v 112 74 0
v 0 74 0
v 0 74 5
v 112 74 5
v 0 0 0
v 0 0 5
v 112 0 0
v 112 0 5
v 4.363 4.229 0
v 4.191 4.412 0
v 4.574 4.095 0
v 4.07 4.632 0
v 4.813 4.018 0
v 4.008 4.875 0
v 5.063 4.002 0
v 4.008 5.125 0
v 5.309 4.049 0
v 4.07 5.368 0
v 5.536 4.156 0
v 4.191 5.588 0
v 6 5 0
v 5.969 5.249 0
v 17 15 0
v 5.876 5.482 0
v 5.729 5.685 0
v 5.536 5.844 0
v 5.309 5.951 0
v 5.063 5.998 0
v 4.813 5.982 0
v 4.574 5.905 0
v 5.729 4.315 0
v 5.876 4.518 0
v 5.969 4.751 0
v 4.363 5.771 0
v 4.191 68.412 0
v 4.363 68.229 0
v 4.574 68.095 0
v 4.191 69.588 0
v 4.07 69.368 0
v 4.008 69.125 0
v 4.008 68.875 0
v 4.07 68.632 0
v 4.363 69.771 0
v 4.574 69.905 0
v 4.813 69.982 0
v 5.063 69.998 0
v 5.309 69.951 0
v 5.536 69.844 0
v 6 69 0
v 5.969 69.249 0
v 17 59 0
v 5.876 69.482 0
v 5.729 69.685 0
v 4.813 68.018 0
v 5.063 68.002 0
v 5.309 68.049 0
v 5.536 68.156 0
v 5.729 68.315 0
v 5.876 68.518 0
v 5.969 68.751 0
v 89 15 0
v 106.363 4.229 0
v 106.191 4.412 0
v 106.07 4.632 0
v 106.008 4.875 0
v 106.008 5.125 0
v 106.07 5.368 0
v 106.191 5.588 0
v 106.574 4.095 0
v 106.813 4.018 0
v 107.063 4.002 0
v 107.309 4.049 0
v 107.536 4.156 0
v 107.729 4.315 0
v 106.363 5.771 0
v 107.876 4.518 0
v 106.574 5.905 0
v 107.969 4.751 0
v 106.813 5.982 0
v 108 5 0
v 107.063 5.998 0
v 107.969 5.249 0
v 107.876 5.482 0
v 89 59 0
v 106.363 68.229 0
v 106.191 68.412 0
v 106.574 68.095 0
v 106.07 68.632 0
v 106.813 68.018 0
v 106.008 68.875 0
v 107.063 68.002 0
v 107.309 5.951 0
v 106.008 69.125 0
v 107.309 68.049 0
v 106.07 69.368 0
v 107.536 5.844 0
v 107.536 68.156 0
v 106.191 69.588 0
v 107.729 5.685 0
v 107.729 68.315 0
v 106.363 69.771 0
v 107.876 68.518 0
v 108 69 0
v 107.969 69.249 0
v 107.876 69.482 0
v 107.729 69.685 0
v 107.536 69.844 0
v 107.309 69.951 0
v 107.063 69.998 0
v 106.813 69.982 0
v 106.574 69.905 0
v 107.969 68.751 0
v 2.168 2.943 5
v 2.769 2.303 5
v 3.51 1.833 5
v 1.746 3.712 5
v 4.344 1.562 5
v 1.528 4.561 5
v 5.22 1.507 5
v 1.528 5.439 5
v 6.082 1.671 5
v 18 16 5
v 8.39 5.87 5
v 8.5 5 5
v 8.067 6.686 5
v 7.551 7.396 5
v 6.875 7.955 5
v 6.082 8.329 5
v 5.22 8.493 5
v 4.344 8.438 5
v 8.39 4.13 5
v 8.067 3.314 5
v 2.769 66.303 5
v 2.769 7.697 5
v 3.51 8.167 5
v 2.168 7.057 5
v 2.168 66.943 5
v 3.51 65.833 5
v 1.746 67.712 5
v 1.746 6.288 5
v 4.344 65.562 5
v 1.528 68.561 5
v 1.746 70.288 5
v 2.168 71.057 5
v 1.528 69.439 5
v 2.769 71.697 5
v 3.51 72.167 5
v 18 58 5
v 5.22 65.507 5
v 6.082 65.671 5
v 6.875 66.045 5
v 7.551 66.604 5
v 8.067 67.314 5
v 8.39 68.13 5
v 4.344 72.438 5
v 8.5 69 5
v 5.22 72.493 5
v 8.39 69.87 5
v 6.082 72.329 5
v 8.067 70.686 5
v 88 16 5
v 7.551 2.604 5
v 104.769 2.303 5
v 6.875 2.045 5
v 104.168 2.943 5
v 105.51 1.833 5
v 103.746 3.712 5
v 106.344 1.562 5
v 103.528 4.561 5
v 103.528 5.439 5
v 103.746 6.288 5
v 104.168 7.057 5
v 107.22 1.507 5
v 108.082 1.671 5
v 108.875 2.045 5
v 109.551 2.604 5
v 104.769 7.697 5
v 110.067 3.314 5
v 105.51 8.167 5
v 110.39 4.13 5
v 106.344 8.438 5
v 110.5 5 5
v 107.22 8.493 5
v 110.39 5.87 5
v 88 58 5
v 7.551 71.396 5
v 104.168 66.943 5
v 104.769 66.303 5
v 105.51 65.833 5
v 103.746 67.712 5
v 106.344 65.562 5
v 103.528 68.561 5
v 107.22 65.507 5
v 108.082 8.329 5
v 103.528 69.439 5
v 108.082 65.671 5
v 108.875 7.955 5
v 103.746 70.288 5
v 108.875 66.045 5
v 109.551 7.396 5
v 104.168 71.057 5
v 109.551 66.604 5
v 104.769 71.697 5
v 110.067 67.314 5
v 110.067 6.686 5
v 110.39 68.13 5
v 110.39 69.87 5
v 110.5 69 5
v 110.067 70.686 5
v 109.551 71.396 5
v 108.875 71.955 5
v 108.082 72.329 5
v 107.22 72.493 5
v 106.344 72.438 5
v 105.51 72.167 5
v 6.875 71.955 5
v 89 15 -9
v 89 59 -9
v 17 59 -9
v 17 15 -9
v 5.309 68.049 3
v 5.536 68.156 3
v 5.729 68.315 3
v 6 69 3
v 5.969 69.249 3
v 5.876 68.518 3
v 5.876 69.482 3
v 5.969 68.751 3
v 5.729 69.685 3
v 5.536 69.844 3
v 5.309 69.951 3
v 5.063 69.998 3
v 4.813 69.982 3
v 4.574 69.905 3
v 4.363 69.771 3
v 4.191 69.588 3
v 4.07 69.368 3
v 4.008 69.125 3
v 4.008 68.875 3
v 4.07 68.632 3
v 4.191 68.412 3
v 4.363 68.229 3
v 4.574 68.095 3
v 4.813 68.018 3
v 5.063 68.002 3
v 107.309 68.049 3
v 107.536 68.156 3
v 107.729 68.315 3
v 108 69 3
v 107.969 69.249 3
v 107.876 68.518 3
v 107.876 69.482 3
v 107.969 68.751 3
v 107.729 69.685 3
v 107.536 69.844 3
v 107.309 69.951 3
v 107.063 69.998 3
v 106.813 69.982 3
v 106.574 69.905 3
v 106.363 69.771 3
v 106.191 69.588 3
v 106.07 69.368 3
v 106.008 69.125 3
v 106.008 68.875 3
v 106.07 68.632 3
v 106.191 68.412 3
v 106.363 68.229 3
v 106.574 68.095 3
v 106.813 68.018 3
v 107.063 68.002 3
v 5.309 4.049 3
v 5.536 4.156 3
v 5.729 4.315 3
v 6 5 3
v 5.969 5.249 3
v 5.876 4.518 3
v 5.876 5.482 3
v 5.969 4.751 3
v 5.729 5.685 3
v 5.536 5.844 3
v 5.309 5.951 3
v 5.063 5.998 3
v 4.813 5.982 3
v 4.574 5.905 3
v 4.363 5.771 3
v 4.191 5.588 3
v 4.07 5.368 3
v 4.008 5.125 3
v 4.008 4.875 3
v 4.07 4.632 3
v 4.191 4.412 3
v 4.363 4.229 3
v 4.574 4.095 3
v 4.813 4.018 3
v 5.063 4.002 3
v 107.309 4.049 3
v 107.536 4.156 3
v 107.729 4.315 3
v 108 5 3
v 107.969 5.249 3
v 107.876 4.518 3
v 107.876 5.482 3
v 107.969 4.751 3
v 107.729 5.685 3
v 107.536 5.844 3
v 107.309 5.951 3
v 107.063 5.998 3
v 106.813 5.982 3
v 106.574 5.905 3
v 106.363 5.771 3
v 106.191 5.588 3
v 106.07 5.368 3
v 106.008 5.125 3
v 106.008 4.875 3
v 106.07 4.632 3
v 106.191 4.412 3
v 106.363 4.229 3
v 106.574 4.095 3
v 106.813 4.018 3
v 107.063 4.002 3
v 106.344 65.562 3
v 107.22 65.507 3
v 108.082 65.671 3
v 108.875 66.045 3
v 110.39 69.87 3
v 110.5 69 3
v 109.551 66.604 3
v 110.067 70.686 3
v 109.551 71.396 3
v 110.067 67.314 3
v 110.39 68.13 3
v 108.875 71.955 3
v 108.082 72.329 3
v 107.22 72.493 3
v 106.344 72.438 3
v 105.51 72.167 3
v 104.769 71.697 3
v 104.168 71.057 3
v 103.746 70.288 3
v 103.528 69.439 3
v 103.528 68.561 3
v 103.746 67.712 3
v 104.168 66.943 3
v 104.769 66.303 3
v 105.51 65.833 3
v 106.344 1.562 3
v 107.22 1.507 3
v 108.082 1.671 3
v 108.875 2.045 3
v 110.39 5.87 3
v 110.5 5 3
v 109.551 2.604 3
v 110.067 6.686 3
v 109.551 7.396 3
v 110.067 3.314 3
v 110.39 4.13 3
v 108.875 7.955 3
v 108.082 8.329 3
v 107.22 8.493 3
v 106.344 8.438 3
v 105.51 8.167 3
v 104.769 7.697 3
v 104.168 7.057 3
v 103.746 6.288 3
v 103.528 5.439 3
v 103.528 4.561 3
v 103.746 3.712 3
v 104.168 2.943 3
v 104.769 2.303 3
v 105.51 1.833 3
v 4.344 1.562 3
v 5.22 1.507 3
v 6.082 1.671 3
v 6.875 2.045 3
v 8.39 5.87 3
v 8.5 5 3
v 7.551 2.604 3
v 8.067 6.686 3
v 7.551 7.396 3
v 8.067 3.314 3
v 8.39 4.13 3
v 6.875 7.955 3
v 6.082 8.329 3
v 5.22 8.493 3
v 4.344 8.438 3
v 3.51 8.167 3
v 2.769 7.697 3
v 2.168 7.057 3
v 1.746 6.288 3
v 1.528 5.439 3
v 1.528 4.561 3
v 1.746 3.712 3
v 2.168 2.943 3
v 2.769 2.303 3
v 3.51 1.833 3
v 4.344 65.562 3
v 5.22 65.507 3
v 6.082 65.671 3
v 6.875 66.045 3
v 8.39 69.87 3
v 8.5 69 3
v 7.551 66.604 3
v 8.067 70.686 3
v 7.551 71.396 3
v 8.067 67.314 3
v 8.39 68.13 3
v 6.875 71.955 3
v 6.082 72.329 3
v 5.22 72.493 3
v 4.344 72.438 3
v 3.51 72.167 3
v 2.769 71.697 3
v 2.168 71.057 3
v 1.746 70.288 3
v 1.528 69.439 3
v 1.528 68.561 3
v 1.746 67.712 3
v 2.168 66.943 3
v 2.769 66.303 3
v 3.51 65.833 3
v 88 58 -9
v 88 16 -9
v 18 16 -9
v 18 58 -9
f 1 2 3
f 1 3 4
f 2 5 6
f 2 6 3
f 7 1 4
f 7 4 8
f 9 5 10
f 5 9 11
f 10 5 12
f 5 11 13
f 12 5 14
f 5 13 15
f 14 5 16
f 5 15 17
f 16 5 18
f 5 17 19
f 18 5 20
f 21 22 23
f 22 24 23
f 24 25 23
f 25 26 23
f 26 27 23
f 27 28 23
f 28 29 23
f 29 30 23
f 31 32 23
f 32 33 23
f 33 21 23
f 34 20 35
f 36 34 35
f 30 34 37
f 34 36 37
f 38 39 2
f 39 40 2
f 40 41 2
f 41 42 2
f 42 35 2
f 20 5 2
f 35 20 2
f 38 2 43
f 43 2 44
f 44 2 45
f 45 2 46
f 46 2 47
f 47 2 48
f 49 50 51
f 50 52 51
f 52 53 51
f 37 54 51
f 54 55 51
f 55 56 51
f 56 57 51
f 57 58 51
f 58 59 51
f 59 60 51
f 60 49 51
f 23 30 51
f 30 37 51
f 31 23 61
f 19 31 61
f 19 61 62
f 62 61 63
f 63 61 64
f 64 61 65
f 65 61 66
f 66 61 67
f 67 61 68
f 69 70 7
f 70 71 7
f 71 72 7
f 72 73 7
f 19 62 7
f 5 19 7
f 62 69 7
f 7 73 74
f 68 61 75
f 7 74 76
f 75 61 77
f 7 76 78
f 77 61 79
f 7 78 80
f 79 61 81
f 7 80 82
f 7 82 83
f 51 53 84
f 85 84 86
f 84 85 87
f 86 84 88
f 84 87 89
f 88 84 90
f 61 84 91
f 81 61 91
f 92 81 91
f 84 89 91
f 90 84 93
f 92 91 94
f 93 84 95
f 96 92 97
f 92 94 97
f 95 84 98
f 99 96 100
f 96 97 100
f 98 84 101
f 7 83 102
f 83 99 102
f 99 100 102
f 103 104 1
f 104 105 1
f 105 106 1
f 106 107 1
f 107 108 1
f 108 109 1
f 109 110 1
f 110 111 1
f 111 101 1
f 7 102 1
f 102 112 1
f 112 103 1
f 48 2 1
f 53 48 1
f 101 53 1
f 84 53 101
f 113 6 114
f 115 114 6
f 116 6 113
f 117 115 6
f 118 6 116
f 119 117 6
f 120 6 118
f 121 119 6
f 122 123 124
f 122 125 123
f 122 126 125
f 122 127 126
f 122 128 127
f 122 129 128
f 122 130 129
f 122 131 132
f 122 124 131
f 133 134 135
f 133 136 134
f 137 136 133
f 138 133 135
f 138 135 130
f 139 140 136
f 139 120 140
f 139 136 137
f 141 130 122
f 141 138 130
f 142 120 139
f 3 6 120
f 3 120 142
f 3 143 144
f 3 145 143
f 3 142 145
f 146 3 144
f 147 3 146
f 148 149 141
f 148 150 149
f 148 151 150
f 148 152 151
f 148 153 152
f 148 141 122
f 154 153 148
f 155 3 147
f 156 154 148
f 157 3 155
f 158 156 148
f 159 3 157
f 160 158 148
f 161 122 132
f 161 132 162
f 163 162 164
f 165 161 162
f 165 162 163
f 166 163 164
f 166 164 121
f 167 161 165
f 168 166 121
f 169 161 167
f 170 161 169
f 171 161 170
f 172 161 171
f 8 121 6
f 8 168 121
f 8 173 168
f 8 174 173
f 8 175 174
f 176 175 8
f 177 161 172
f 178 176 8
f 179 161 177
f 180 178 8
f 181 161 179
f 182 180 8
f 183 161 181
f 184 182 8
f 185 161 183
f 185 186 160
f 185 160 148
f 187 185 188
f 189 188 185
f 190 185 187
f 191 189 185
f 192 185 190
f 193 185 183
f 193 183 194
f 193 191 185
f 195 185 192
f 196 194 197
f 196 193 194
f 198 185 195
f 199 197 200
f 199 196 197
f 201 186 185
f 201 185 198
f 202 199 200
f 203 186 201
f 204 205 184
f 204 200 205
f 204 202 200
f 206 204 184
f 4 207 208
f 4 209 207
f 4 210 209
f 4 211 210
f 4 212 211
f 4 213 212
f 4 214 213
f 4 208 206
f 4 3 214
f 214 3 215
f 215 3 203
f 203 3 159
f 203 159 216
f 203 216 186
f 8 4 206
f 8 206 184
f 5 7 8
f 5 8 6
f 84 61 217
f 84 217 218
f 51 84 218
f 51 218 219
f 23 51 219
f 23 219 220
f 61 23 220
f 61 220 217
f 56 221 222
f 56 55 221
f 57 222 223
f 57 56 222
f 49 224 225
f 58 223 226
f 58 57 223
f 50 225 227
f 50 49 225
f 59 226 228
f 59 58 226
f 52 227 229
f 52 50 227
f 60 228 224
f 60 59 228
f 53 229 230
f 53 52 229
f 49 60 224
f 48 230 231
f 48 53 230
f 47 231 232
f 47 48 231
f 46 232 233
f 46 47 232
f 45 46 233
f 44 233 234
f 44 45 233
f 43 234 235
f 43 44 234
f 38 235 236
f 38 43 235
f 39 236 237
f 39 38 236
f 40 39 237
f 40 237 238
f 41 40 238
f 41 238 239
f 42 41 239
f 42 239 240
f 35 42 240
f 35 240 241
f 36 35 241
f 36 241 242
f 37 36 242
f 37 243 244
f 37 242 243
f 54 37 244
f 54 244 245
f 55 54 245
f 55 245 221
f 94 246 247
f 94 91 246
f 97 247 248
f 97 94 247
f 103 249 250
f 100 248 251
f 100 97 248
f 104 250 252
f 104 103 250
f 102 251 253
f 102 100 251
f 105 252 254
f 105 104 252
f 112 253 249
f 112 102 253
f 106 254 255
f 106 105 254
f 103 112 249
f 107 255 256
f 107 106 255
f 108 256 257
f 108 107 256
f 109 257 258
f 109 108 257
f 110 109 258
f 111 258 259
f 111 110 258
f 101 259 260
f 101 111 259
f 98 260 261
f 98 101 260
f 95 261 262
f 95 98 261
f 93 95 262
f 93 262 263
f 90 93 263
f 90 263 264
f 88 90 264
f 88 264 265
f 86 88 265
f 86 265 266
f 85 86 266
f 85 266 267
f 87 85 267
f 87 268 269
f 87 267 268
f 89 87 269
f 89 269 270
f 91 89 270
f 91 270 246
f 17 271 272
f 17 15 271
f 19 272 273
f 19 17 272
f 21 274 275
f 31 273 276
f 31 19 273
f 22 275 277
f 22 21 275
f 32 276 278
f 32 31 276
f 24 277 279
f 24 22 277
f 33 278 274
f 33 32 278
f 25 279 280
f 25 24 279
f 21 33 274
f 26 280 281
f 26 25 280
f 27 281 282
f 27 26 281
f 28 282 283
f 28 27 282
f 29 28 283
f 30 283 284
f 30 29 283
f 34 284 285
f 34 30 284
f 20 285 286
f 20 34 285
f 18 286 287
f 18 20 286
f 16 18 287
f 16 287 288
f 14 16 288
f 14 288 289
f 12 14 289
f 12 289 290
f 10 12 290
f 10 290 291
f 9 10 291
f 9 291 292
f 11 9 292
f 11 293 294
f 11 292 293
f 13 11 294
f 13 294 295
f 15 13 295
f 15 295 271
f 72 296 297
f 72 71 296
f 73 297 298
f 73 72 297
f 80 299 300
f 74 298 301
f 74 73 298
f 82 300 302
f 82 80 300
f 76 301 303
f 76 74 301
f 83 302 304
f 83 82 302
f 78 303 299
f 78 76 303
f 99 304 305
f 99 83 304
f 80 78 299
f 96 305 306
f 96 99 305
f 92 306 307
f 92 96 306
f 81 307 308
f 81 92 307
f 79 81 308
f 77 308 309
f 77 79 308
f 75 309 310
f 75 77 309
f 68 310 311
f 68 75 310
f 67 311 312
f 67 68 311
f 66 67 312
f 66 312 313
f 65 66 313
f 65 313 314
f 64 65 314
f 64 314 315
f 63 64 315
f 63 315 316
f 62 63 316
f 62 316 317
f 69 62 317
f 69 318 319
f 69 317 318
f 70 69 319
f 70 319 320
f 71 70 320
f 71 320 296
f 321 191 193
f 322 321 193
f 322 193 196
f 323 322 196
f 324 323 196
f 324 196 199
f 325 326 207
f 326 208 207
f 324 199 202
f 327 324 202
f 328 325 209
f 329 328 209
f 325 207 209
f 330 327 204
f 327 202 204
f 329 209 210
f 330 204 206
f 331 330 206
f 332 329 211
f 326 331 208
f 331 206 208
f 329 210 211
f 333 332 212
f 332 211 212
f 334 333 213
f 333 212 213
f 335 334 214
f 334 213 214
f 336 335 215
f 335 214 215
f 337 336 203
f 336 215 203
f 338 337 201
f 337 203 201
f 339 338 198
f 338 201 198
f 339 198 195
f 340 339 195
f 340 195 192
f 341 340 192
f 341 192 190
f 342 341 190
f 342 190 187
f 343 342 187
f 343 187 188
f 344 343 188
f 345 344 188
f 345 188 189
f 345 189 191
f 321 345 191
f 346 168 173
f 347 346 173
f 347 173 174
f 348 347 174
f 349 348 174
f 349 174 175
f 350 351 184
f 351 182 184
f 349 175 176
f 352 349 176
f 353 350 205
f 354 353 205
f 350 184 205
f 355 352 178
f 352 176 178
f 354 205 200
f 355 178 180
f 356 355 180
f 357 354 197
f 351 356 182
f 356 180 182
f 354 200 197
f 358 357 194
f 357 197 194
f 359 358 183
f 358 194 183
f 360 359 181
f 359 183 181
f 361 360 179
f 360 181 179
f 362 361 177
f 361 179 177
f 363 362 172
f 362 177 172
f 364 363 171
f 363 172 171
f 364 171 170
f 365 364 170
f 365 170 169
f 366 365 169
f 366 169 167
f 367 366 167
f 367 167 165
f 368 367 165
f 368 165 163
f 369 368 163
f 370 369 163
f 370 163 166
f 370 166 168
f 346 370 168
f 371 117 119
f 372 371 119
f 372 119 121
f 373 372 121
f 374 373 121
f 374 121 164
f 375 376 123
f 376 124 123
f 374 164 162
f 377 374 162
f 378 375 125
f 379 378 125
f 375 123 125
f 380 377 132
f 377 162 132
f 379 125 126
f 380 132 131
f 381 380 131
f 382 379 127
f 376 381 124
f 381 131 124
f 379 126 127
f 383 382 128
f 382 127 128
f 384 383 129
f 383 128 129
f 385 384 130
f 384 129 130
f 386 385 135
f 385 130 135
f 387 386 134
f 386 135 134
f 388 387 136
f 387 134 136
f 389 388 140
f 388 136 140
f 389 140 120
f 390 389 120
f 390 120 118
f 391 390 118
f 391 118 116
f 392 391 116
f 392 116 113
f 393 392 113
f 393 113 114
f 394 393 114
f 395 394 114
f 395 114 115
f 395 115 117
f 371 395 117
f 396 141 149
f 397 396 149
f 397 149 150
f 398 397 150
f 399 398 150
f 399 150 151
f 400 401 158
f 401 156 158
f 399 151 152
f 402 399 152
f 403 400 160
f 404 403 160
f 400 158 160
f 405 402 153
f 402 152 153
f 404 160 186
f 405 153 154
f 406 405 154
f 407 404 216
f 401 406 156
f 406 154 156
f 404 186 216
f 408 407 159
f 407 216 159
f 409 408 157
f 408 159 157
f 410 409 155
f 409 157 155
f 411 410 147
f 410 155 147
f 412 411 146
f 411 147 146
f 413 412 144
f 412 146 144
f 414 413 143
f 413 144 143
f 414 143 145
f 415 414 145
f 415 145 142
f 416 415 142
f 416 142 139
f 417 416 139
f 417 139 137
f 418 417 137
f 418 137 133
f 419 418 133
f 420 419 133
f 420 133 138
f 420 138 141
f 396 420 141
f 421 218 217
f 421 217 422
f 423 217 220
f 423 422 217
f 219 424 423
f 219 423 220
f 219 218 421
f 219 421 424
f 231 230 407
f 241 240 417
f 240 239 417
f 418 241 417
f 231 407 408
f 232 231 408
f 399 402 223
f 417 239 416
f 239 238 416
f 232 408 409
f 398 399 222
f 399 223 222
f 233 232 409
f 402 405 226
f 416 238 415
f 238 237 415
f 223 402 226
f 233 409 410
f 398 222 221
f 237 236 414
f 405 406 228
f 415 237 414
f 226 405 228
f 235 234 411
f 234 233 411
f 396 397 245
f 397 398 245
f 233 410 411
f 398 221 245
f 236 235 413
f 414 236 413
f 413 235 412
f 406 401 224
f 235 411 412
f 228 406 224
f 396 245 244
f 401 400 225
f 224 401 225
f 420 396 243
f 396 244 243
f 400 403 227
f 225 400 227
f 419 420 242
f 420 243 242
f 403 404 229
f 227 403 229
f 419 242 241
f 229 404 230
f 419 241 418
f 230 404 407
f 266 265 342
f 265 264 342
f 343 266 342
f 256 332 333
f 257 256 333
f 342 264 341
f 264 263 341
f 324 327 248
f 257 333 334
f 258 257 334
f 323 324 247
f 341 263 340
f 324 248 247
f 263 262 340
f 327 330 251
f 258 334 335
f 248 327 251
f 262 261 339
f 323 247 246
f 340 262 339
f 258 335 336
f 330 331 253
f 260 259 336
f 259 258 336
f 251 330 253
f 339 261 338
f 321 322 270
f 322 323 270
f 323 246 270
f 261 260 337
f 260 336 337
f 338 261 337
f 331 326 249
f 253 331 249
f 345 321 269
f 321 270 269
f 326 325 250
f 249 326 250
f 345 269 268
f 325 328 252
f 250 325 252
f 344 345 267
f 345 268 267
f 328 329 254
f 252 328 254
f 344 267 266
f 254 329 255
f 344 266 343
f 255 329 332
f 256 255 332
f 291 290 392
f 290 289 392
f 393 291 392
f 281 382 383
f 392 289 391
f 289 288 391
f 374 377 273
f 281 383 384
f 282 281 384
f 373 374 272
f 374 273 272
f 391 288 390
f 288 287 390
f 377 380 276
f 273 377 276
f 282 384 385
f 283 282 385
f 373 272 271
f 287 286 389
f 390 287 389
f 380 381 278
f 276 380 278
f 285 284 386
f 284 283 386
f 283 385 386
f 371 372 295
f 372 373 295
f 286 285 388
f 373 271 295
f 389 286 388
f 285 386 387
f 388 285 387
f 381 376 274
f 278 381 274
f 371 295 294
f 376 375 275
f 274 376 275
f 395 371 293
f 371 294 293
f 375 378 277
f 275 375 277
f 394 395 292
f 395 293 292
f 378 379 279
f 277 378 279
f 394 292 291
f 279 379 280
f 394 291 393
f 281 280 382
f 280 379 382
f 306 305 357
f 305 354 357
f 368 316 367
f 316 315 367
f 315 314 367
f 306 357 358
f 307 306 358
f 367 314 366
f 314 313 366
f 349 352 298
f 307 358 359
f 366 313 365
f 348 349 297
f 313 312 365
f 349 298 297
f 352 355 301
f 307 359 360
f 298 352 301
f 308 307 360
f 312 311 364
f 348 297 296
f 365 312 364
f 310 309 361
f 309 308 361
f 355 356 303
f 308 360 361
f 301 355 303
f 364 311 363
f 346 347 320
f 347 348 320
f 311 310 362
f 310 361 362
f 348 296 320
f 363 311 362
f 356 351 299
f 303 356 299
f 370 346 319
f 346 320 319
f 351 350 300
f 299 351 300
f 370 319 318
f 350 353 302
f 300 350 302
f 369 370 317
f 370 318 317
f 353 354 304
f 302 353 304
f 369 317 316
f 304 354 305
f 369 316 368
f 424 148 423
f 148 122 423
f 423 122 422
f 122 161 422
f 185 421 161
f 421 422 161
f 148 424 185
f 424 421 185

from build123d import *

# Parameters (mm, degrees)
SKETCH_W        = 112
SKETCH_H        = 74
SKETCH_R        = 1
PAD_DEPTH       = 5
SKETCH001_R     = 3.5
POCKET_DEPTH    = 2
SKETCH002_W     = 70
SKETCH002_H     = 42
POCKET001_DEPTH = 5
SKETCH003_W     = 72
SKETCH003_H     = 44
SKETCH003_W_2   = 70
SKETCH003_H_2   = 42
PAD001_DEPTH    = 9


with BuildPart() as part:
    # Sketch → Pad (new body)
    with BuildSketch(Plane.XY):
        with Locations((56, 37)):
            Rectangle(SKETCH_W, SKETCH_H)
        with Locations((5, 69)):
            Circle(SKETCH_R, mode=Mode.SUBTRACT)
        with Locations((5, 5)):
            Circle(SKETCH_R, mode=Mode.SUBTRACT)
        with Locations((107, 69)):
            Circle(SKETCH_R, mode=Mode.SUBTRACT)
        with Locations((107, 5)):
            Circle(SKETCH_R, mode=Mode.SUBTRACT)
    extrude(amount=PAD_DEPTH)

    # Sketch001 → Pocket (cut)
    with BuildSketch(Plane.XY.offset(5)):
        with Locations((5, 5)):
            Circle(SKETCH001_R)
        with Locations((5, 69)):
            Circle(SKETCH001_R)
        with Locations((107, 69)):
            Circle(SKETCH001_R)
        with Locations((107, 5)):
            Circle(SKETCH001_R)
    extrude(amount=-POCKET_DEPTH, mode=Mode.SUBTRACT)

    # Sketch002 → Pocket001 (cut)
    with BuildSketch(Plane.XY.offset(5)):
        with Locations((53, 37)):
            Rectangle(SKETCH002_W, SKETCH002_H)
    extrude(amount=-POCKET001_DEPTH, mode=Mode.SUBTRACT)

    # Sketch003 → Pad001 (new body)
    with BuildSketch(Plane(origin=(0, 0, 0), x_dir=(1, 0, 0), z_dir=(0, 0, -1))):
        with Locations((53, -37)):
            Rectangle(SKETCH003_W, SKETCH003_H)
        with Locations((53, -37)):
            Rectangle(SKETCH003_W_2, SKETCH003_H_2, mode=Mode.SUBTRACT)
    extrude(amount=PAD001_DEPTH)


solid = part.part
